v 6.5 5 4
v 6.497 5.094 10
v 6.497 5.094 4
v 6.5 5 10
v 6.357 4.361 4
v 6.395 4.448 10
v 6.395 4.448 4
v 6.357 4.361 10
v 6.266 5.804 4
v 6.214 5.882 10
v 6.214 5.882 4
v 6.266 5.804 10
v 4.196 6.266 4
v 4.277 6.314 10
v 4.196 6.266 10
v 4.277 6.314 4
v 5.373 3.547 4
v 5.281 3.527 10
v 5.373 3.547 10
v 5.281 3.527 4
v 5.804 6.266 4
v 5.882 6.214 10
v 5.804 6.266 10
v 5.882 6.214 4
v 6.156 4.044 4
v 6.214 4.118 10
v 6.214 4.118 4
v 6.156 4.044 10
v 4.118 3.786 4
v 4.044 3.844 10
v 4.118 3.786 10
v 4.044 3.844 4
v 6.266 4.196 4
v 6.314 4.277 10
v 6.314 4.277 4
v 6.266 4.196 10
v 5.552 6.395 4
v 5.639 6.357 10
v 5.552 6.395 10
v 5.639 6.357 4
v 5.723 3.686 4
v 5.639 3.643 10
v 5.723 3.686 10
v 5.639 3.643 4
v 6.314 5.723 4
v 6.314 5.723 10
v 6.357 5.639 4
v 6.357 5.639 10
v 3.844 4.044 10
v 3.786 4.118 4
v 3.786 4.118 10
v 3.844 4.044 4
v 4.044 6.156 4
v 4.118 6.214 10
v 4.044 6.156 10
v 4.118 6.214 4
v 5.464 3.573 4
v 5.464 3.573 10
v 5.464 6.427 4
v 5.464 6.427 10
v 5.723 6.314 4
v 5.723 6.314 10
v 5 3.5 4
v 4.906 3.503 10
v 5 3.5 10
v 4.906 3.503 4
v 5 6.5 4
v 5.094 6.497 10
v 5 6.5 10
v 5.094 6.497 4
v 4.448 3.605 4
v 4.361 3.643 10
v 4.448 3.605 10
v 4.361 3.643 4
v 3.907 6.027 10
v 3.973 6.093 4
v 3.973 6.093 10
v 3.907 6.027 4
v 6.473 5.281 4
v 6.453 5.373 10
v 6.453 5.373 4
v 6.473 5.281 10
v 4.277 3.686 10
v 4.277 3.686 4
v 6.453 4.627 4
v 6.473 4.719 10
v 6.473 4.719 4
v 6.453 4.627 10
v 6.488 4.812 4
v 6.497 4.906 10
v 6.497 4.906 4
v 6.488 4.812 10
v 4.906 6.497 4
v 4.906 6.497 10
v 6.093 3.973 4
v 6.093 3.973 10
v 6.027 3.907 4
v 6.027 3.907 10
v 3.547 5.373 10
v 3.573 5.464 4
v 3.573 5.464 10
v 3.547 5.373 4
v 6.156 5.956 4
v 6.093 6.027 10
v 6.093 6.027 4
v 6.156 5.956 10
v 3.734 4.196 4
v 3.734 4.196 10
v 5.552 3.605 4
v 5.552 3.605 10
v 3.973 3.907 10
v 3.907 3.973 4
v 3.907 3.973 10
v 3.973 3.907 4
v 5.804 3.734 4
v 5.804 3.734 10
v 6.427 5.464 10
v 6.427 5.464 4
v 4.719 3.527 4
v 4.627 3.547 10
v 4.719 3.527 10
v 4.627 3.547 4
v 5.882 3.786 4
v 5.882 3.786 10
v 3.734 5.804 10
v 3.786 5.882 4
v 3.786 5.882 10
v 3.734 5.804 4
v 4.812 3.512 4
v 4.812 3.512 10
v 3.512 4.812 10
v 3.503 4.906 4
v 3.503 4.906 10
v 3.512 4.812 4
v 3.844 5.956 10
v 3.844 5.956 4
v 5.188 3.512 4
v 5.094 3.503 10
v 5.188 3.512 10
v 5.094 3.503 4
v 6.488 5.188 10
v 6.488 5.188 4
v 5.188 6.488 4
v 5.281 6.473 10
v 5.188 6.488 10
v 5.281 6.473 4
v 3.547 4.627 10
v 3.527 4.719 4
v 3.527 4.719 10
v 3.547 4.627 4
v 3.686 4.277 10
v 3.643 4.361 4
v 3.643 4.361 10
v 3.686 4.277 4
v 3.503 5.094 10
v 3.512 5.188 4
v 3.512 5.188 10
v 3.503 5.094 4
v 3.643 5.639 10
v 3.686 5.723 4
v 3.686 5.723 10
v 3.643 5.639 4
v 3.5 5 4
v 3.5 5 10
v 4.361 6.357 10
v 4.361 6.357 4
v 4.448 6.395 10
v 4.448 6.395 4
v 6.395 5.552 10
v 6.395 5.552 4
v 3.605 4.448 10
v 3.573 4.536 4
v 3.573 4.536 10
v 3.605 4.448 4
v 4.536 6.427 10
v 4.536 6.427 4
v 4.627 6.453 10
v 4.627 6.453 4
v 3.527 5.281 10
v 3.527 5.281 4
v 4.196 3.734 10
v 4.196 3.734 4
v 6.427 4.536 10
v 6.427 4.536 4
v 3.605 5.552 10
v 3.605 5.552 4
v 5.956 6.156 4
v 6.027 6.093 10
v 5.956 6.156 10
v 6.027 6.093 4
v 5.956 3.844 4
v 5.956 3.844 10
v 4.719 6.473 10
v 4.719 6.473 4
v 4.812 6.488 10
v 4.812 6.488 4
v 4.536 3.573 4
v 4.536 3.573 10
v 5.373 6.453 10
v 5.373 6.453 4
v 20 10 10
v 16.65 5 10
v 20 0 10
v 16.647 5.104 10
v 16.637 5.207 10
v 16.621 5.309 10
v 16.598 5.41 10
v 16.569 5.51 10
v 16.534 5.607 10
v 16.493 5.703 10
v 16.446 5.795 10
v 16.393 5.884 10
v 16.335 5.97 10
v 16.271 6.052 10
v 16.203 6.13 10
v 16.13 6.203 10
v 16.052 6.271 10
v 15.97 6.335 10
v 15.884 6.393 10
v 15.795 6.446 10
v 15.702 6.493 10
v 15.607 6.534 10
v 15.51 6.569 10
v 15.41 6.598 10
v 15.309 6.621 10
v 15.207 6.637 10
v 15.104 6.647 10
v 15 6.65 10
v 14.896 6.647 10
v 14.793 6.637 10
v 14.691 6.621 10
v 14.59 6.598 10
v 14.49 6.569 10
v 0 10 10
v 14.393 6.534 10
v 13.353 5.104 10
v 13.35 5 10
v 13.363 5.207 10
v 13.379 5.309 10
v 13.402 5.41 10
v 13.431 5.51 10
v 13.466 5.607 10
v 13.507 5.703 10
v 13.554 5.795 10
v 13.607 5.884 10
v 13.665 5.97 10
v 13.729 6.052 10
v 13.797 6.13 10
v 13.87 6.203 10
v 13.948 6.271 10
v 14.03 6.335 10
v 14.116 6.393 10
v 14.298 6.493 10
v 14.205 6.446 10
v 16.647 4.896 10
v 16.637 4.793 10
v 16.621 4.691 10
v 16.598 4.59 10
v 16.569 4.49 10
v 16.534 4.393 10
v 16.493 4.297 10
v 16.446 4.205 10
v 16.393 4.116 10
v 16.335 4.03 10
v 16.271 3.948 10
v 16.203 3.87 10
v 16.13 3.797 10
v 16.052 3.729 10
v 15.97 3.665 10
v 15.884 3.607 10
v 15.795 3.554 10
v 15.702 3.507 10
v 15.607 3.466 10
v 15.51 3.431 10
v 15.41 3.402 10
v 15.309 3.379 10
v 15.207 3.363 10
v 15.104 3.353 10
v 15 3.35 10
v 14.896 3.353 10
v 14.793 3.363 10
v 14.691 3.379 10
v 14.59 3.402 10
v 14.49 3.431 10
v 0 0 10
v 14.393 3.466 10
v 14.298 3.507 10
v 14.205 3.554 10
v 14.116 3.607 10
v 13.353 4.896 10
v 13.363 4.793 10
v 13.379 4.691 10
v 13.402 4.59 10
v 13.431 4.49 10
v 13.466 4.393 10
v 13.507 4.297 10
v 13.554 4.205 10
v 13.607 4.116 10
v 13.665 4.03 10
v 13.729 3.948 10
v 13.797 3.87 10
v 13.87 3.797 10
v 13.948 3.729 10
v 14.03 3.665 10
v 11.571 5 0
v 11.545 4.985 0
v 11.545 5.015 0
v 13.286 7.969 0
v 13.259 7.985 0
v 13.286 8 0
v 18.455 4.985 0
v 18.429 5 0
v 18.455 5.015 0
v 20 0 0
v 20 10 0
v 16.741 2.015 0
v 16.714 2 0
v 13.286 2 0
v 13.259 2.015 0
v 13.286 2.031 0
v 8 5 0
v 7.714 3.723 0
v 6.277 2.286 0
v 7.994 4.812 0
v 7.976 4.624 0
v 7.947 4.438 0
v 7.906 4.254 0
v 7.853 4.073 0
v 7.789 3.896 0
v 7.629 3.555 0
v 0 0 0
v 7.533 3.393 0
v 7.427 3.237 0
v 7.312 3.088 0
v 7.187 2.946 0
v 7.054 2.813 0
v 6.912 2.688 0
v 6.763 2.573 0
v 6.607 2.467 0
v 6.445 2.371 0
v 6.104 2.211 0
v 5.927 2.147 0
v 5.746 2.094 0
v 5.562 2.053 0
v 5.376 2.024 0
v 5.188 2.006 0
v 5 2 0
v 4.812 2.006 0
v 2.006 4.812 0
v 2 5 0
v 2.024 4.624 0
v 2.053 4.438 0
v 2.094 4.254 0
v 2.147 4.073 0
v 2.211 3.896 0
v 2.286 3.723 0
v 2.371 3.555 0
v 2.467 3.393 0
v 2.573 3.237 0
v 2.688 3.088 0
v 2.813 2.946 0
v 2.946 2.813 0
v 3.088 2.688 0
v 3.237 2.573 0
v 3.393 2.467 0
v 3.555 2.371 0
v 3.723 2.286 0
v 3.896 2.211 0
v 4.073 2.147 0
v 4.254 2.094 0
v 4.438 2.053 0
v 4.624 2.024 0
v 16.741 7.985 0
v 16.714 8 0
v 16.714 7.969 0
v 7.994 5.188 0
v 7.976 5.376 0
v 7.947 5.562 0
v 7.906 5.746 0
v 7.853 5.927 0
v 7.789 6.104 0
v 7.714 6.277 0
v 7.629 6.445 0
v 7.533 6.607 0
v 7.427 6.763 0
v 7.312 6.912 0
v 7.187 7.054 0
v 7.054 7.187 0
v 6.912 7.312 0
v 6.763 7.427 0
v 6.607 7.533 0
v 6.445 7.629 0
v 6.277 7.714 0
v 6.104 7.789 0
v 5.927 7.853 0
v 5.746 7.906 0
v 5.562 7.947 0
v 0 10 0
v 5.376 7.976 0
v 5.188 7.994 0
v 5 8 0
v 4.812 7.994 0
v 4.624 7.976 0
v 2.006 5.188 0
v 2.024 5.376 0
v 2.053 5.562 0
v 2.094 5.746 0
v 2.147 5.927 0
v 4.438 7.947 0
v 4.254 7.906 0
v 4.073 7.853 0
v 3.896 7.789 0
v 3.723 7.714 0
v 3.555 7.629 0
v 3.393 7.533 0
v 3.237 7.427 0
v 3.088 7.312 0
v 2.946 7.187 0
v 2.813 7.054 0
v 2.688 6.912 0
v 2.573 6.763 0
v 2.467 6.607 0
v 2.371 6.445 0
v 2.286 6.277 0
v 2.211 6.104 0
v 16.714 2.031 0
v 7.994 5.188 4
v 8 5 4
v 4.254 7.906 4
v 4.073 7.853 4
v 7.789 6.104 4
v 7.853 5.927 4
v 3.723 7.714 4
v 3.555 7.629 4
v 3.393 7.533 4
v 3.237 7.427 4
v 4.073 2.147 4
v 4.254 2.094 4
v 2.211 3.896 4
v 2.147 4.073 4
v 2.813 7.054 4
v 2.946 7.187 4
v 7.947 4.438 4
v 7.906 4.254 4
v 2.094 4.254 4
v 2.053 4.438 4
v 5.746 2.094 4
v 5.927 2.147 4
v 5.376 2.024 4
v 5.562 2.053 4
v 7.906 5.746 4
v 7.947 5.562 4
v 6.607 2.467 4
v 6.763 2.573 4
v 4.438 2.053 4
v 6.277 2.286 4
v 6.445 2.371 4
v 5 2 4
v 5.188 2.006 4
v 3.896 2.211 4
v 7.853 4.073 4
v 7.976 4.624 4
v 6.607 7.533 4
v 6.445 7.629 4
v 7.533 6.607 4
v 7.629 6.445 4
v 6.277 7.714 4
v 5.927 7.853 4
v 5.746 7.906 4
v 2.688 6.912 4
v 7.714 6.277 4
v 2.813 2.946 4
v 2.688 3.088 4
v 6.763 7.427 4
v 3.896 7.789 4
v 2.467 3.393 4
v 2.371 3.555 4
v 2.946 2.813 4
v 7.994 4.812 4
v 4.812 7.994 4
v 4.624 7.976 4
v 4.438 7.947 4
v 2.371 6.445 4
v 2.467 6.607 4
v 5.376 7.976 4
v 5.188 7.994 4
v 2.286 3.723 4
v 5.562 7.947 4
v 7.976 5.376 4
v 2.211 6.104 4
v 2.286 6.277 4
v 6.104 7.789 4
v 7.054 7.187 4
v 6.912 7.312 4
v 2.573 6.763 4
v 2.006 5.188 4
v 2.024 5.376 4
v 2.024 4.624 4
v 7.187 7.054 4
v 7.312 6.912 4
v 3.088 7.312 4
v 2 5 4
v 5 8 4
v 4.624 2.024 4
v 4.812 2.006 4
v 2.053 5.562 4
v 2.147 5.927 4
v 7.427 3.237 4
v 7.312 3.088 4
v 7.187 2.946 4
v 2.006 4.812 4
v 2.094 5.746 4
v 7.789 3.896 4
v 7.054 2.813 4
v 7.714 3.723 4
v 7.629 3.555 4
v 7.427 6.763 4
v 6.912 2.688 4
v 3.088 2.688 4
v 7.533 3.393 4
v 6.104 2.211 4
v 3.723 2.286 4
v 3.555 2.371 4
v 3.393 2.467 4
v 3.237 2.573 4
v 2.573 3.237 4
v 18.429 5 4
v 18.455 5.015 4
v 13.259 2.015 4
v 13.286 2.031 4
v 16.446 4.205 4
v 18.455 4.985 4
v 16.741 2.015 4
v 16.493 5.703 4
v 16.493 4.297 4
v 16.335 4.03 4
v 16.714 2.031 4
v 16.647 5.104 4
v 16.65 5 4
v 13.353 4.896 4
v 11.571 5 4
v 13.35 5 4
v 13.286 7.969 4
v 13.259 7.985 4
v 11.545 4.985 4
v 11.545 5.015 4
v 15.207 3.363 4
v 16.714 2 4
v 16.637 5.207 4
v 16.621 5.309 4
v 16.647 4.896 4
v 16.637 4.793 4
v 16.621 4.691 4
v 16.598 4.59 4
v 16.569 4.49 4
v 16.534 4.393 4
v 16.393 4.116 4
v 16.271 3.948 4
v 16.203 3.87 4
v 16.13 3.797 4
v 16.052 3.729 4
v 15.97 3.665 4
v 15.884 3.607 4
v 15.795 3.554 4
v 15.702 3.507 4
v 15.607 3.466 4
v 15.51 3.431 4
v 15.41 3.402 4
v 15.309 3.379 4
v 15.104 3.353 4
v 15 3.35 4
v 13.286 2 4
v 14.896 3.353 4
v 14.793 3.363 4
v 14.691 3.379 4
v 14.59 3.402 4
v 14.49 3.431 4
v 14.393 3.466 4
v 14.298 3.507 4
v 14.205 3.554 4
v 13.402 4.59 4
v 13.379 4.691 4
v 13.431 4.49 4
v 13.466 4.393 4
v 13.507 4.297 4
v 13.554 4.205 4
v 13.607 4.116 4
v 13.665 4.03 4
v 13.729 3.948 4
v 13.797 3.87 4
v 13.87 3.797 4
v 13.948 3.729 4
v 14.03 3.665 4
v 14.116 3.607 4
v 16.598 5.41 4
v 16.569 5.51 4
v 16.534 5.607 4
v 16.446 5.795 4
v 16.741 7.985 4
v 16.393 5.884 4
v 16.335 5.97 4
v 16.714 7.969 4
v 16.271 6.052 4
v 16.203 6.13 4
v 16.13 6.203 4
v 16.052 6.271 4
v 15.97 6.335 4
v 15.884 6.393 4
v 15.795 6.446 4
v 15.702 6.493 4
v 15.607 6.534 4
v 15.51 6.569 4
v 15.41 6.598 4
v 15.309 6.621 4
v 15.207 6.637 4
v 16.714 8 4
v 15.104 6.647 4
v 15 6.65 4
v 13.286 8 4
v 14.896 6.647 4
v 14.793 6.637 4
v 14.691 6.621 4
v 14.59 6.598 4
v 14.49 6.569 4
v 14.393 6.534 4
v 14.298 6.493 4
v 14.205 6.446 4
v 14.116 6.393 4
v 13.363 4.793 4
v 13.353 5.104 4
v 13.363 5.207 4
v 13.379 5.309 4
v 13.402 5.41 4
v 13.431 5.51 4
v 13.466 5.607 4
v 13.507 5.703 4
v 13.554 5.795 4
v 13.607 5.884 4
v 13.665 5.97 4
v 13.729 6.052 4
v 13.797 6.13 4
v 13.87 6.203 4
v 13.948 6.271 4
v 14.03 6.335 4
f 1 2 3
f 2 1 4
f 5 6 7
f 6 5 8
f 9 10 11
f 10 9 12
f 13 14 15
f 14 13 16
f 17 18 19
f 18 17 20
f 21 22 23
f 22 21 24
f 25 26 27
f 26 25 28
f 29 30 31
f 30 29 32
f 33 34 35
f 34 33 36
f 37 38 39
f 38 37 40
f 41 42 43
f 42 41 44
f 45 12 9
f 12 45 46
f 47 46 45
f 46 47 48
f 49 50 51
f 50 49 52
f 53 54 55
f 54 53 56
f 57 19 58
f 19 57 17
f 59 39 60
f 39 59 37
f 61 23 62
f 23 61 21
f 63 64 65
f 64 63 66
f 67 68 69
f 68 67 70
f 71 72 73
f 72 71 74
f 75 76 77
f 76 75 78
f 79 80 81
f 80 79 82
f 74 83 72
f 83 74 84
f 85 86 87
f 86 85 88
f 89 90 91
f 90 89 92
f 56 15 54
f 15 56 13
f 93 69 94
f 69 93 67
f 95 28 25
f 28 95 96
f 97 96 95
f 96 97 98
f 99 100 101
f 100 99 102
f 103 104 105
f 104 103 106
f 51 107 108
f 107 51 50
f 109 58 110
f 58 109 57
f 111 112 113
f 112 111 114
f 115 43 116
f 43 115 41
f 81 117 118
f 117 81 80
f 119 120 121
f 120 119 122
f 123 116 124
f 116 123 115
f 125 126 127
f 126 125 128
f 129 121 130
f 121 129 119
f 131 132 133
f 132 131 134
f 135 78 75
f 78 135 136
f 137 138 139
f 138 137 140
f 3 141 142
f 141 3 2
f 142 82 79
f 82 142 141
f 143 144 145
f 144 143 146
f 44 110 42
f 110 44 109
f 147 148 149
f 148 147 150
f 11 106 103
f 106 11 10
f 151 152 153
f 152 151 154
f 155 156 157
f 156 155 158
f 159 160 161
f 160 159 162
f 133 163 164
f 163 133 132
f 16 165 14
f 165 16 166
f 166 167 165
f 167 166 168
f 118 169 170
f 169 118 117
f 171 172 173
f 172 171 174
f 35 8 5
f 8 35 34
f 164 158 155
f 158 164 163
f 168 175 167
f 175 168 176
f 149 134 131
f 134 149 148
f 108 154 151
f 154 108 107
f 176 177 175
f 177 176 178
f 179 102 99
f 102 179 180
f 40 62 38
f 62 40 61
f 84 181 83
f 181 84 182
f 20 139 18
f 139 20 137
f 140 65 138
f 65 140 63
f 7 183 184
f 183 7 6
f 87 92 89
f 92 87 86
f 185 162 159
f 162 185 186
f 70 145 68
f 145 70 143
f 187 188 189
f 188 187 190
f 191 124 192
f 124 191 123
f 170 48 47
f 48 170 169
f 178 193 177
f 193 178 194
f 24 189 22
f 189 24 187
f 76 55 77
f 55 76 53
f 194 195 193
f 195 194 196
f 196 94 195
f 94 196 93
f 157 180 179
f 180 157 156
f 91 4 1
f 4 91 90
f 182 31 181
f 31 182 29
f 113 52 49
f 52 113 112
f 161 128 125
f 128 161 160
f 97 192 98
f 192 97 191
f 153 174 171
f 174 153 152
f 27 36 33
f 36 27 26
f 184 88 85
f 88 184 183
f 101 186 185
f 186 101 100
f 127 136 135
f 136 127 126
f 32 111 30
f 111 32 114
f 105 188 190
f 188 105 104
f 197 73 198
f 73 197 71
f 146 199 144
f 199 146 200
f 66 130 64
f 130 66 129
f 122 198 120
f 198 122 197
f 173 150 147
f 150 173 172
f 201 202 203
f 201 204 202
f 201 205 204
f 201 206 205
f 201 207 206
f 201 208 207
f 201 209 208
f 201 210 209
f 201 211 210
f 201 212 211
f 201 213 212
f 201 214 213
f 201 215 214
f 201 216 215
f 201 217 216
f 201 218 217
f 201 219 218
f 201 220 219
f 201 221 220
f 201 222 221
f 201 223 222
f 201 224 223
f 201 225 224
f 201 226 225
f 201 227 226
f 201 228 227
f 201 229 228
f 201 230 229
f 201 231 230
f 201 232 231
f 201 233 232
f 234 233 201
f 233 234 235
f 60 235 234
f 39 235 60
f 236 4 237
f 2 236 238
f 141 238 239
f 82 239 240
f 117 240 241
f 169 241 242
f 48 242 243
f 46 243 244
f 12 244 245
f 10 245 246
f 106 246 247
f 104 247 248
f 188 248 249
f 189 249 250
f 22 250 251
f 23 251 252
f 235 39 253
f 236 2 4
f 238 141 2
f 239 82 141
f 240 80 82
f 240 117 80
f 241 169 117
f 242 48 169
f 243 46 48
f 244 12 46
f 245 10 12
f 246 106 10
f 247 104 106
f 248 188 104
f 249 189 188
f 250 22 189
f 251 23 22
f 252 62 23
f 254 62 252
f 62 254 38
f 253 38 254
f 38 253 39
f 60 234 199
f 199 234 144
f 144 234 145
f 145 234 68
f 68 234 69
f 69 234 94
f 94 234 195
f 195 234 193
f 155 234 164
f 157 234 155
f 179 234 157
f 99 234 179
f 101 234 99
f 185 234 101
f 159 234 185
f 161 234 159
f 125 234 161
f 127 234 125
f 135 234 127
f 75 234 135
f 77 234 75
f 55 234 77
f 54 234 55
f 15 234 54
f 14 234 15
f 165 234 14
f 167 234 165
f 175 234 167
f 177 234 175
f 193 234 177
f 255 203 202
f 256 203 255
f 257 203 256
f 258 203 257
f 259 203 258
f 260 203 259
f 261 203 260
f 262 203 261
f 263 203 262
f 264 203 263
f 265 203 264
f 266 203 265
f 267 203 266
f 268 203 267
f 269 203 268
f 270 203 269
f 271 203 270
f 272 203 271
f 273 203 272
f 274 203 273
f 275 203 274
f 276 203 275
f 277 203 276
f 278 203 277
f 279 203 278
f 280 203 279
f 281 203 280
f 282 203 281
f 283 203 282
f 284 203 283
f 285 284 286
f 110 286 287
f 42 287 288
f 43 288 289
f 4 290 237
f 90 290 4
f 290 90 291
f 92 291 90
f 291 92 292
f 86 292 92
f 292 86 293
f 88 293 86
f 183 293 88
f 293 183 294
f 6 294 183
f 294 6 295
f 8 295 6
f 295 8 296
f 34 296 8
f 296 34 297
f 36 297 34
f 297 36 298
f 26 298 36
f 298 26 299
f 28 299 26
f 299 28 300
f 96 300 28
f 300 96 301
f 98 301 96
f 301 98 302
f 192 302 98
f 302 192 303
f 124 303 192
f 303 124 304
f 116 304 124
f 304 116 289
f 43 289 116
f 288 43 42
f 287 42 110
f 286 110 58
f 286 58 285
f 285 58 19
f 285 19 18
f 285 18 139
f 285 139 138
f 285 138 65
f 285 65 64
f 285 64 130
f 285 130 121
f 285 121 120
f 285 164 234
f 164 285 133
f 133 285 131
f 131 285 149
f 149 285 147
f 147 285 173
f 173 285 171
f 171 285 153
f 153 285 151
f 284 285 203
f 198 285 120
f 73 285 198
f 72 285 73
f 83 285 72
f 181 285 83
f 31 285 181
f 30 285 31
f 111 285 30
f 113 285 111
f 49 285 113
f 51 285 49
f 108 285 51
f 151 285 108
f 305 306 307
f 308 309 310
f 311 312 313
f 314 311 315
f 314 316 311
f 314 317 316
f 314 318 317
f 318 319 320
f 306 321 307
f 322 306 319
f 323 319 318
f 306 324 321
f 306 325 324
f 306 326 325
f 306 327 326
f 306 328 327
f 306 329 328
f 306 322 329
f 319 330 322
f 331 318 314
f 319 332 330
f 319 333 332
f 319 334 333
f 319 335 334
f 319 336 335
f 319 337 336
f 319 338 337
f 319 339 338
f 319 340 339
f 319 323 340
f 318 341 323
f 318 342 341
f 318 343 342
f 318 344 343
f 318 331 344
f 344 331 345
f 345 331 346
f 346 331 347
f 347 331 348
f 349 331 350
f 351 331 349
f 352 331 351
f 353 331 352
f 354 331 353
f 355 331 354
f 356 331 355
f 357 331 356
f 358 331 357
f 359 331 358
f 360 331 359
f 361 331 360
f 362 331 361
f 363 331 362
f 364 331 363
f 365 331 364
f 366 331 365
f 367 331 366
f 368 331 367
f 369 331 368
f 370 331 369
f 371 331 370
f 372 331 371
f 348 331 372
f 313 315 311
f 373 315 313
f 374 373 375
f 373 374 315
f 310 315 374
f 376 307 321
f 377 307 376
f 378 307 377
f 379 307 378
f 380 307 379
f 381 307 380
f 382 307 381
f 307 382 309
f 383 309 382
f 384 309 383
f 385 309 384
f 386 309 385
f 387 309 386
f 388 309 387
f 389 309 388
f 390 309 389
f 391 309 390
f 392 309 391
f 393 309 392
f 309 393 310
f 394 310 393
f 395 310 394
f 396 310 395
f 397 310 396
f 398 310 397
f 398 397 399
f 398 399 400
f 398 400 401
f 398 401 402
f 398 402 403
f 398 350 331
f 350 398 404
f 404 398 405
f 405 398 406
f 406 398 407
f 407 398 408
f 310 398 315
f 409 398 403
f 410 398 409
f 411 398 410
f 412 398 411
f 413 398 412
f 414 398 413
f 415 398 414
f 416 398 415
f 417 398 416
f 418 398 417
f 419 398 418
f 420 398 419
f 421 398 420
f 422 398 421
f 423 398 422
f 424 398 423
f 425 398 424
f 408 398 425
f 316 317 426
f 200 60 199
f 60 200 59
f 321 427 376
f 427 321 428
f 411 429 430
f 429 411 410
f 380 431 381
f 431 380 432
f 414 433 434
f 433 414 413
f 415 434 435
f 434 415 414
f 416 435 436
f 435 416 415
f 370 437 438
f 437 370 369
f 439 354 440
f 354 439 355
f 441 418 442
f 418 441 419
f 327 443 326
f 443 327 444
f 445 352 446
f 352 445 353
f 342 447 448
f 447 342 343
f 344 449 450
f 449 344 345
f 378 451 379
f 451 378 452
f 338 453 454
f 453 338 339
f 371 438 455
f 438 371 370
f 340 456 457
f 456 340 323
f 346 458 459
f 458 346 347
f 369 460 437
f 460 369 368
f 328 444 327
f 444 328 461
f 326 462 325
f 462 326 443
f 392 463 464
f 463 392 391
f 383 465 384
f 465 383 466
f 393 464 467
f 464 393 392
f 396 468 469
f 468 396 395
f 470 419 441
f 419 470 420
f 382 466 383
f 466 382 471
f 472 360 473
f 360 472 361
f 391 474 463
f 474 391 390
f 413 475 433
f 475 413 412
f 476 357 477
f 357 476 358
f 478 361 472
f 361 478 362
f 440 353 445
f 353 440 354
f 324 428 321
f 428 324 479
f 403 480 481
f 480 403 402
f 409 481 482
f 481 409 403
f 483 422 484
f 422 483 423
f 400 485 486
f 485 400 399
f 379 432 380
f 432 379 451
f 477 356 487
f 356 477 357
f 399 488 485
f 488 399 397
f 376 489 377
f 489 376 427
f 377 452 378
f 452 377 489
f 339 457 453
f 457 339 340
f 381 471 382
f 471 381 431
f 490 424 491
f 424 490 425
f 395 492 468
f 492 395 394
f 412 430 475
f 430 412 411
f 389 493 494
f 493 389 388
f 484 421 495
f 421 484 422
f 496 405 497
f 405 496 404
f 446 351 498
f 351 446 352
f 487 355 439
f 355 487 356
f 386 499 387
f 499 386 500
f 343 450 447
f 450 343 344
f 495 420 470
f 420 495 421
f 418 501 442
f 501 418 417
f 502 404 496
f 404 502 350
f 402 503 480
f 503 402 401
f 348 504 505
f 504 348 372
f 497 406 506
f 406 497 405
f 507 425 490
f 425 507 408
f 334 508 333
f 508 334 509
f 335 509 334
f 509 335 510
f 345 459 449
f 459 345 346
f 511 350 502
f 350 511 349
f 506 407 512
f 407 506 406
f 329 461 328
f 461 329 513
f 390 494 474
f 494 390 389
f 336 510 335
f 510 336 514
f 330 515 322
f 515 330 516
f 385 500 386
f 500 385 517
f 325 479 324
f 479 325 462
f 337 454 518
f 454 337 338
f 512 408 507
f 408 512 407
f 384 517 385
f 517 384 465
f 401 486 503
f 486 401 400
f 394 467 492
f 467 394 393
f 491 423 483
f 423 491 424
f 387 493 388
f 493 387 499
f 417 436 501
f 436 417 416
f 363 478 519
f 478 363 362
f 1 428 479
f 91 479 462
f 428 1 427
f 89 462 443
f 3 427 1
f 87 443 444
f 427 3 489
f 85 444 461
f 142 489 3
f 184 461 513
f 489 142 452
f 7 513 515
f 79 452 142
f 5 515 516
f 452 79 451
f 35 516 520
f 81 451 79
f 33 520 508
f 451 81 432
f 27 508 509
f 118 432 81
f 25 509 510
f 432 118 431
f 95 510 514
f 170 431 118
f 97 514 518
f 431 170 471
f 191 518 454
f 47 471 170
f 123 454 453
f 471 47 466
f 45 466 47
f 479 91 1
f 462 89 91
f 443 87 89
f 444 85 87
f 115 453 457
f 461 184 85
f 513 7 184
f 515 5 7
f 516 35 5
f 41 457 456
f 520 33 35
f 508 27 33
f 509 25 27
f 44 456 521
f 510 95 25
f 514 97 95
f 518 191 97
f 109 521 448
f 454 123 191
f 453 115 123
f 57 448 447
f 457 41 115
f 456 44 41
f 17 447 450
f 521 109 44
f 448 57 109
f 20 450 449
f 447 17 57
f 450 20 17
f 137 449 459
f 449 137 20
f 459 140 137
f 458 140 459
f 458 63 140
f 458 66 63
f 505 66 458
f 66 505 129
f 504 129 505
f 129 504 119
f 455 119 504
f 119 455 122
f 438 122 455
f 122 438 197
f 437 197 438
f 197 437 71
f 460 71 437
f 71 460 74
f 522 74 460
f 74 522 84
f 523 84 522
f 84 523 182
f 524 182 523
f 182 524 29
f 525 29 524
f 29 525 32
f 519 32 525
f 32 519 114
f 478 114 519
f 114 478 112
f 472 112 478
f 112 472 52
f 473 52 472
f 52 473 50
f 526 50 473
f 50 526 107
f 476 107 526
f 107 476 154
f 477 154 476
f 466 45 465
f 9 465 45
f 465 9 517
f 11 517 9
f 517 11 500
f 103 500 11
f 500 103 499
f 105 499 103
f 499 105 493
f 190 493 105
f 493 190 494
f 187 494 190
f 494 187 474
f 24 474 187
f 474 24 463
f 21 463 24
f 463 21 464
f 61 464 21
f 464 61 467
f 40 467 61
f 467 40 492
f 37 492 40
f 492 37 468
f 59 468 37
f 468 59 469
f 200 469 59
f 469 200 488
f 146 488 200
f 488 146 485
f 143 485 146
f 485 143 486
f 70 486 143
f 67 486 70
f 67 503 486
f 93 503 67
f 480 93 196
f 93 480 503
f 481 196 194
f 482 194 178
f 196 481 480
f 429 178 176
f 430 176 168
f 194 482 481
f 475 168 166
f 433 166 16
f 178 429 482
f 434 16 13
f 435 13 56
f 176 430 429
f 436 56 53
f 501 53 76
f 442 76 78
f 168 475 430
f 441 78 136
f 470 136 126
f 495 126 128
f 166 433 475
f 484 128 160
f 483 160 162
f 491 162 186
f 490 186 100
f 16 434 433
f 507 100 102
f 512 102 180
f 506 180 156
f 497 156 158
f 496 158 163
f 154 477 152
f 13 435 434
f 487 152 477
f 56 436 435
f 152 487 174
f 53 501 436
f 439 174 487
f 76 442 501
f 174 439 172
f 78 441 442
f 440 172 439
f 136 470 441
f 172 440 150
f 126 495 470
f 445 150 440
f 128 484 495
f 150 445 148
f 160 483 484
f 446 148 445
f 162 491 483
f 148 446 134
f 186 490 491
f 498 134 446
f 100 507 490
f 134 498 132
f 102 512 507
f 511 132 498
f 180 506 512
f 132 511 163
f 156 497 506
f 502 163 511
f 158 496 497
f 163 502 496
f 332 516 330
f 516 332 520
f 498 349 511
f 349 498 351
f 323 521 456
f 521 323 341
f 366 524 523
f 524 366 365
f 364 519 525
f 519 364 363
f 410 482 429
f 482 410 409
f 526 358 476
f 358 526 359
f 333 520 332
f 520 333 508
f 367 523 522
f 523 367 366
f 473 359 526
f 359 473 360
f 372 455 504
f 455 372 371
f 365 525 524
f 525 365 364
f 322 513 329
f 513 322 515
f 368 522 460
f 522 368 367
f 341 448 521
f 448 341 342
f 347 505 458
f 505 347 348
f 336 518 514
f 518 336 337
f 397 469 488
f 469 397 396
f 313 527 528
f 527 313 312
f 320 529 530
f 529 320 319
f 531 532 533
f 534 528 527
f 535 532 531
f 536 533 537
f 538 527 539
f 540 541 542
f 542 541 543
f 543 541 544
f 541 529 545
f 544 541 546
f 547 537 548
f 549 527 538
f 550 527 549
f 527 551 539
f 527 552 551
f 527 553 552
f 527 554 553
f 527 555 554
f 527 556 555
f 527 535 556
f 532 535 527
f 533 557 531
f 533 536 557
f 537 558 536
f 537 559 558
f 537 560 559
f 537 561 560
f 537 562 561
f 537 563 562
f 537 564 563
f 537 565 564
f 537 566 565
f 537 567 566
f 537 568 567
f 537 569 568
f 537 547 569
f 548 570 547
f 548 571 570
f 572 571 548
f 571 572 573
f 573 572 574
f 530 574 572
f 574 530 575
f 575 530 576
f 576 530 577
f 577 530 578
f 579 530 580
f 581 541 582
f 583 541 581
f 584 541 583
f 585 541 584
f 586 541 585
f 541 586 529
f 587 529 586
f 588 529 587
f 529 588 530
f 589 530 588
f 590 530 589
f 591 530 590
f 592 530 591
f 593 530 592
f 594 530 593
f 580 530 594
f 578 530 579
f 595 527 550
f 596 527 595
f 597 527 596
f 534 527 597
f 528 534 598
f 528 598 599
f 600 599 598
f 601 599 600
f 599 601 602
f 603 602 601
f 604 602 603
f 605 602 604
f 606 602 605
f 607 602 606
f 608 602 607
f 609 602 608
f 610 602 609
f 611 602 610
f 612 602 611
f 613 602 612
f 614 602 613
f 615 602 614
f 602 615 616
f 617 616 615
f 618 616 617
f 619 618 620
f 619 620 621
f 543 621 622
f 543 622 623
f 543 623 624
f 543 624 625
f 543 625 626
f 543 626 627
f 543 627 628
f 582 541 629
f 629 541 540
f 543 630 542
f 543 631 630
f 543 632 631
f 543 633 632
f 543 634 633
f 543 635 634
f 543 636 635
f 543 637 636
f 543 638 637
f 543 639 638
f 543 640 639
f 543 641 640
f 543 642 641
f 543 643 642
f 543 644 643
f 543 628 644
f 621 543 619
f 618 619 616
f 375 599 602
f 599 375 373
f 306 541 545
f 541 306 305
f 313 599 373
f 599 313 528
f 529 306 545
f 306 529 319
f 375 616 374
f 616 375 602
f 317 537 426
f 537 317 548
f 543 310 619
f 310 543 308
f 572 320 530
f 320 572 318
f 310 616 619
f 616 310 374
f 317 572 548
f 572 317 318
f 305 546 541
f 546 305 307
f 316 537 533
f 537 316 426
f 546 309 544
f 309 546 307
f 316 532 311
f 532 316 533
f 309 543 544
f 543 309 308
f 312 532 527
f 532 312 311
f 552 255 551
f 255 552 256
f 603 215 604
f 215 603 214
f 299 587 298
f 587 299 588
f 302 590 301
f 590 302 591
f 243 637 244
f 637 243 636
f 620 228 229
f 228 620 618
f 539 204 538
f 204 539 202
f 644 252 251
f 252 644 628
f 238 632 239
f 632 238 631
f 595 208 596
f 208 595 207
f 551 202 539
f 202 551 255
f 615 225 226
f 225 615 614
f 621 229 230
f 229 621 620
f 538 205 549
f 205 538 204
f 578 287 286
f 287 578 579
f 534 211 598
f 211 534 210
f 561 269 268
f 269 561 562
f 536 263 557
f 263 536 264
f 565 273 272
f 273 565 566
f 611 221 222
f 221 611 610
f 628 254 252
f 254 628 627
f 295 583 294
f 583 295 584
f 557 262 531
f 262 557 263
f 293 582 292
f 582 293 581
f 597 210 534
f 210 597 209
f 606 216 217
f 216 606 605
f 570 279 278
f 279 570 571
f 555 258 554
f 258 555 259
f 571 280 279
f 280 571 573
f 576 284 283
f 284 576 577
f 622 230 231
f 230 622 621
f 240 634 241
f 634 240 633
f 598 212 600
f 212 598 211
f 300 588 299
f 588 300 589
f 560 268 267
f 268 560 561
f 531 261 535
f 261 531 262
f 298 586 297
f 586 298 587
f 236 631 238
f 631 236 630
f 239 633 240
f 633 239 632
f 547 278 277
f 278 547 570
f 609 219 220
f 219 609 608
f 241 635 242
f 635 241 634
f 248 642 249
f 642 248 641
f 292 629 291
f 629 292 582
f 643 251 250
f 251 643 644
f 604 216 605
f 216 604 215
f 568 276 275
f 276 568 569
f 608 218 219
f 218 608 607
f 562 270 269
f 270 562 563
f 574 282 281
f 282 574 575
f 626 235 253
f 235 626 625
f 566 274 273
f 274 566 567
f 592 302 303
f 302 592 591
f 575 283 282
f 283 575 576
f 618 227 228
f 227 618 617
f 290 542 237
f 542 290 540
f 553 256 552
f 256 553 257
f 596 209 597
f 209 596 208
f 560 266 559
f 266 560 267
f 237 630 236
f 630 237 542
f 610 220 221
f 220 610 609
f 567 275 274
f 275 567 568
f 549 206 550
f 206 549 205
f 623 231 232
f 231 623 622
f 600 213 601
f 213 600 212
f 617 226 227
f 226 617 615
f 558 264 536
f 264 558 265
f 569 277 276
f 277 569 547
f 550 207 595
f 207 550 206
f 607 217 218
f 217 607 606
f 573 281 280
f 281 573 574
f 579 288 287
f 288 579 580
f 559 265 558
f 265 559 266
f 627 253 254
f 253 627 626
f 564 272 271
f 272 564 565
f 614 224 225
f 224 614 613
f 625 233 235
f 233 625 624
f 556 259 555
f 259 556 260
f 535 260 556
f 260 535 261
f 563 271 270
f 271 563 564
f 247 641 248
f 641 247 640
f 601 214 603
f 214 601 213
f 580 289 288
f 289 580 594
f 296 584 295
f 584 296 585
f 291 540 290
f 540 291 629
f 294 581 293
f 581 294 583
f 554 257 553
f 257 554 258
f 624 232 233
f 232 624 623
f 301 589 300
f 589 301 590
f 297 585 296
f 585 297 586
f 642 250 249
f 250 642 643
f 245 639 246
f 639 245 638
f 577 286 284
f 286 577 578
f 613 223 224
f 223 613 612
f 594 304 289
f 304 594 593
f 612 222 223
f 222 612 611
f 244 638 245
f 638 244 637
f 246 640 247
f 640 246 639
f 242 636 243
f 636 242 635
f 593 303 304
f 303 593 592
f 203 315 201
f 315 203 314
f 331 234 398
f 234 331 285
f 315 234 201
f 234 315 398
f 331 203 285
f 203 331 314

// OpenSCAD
$fn=100;
module handle() {
    difference() {
        hull() {
            cylinder(20, d=30);
            translate([30,0,0]) cylinder(8, d=20);
            translate([-30,0,0]) cylinder(8, d=20);
        }
        cylinder(20, d=5);
    }
}

module hexagon(size, height) {
  boxWidth = size/1.75;
  translate([0,0,height/2]) for (r = [-60, 0, 60]) rotate([0,0,r]) cube([boxWidth, size, height], true);
}

//handle();
module test1() {
    difference() {
    //handle();
    cube([10,10,10]);
    translate([5,5,0])    cylinder(10,d=3);
    translate([5,5,0])    #hexagon(5.5,4);
}
}


module bolthole(d, h, head_d, head_h, rounded=false, center=false) {
    // TODO: add center parameter code
    cylinder(h,d=d);
    if (rounded) {
        cylinder(head_h,d=head_d);
    }
    else {
        boxWidth = head_d/1.75;
        translate([0,0,head_h/2])
            for (r = [-60, 0, 60])
                rotate([0,0,r]) cube([boxWidth, head_d, head_h], center=true);
    }
}

module test2() {
    difference() {
        cube([20,10,10]);
        # translate([5,5,0]) bolthole(3,10,6,4, rounded=true);
        # translate([15,5,0]) bolthole(3.3,10,6,4);
    }
}
test2();
